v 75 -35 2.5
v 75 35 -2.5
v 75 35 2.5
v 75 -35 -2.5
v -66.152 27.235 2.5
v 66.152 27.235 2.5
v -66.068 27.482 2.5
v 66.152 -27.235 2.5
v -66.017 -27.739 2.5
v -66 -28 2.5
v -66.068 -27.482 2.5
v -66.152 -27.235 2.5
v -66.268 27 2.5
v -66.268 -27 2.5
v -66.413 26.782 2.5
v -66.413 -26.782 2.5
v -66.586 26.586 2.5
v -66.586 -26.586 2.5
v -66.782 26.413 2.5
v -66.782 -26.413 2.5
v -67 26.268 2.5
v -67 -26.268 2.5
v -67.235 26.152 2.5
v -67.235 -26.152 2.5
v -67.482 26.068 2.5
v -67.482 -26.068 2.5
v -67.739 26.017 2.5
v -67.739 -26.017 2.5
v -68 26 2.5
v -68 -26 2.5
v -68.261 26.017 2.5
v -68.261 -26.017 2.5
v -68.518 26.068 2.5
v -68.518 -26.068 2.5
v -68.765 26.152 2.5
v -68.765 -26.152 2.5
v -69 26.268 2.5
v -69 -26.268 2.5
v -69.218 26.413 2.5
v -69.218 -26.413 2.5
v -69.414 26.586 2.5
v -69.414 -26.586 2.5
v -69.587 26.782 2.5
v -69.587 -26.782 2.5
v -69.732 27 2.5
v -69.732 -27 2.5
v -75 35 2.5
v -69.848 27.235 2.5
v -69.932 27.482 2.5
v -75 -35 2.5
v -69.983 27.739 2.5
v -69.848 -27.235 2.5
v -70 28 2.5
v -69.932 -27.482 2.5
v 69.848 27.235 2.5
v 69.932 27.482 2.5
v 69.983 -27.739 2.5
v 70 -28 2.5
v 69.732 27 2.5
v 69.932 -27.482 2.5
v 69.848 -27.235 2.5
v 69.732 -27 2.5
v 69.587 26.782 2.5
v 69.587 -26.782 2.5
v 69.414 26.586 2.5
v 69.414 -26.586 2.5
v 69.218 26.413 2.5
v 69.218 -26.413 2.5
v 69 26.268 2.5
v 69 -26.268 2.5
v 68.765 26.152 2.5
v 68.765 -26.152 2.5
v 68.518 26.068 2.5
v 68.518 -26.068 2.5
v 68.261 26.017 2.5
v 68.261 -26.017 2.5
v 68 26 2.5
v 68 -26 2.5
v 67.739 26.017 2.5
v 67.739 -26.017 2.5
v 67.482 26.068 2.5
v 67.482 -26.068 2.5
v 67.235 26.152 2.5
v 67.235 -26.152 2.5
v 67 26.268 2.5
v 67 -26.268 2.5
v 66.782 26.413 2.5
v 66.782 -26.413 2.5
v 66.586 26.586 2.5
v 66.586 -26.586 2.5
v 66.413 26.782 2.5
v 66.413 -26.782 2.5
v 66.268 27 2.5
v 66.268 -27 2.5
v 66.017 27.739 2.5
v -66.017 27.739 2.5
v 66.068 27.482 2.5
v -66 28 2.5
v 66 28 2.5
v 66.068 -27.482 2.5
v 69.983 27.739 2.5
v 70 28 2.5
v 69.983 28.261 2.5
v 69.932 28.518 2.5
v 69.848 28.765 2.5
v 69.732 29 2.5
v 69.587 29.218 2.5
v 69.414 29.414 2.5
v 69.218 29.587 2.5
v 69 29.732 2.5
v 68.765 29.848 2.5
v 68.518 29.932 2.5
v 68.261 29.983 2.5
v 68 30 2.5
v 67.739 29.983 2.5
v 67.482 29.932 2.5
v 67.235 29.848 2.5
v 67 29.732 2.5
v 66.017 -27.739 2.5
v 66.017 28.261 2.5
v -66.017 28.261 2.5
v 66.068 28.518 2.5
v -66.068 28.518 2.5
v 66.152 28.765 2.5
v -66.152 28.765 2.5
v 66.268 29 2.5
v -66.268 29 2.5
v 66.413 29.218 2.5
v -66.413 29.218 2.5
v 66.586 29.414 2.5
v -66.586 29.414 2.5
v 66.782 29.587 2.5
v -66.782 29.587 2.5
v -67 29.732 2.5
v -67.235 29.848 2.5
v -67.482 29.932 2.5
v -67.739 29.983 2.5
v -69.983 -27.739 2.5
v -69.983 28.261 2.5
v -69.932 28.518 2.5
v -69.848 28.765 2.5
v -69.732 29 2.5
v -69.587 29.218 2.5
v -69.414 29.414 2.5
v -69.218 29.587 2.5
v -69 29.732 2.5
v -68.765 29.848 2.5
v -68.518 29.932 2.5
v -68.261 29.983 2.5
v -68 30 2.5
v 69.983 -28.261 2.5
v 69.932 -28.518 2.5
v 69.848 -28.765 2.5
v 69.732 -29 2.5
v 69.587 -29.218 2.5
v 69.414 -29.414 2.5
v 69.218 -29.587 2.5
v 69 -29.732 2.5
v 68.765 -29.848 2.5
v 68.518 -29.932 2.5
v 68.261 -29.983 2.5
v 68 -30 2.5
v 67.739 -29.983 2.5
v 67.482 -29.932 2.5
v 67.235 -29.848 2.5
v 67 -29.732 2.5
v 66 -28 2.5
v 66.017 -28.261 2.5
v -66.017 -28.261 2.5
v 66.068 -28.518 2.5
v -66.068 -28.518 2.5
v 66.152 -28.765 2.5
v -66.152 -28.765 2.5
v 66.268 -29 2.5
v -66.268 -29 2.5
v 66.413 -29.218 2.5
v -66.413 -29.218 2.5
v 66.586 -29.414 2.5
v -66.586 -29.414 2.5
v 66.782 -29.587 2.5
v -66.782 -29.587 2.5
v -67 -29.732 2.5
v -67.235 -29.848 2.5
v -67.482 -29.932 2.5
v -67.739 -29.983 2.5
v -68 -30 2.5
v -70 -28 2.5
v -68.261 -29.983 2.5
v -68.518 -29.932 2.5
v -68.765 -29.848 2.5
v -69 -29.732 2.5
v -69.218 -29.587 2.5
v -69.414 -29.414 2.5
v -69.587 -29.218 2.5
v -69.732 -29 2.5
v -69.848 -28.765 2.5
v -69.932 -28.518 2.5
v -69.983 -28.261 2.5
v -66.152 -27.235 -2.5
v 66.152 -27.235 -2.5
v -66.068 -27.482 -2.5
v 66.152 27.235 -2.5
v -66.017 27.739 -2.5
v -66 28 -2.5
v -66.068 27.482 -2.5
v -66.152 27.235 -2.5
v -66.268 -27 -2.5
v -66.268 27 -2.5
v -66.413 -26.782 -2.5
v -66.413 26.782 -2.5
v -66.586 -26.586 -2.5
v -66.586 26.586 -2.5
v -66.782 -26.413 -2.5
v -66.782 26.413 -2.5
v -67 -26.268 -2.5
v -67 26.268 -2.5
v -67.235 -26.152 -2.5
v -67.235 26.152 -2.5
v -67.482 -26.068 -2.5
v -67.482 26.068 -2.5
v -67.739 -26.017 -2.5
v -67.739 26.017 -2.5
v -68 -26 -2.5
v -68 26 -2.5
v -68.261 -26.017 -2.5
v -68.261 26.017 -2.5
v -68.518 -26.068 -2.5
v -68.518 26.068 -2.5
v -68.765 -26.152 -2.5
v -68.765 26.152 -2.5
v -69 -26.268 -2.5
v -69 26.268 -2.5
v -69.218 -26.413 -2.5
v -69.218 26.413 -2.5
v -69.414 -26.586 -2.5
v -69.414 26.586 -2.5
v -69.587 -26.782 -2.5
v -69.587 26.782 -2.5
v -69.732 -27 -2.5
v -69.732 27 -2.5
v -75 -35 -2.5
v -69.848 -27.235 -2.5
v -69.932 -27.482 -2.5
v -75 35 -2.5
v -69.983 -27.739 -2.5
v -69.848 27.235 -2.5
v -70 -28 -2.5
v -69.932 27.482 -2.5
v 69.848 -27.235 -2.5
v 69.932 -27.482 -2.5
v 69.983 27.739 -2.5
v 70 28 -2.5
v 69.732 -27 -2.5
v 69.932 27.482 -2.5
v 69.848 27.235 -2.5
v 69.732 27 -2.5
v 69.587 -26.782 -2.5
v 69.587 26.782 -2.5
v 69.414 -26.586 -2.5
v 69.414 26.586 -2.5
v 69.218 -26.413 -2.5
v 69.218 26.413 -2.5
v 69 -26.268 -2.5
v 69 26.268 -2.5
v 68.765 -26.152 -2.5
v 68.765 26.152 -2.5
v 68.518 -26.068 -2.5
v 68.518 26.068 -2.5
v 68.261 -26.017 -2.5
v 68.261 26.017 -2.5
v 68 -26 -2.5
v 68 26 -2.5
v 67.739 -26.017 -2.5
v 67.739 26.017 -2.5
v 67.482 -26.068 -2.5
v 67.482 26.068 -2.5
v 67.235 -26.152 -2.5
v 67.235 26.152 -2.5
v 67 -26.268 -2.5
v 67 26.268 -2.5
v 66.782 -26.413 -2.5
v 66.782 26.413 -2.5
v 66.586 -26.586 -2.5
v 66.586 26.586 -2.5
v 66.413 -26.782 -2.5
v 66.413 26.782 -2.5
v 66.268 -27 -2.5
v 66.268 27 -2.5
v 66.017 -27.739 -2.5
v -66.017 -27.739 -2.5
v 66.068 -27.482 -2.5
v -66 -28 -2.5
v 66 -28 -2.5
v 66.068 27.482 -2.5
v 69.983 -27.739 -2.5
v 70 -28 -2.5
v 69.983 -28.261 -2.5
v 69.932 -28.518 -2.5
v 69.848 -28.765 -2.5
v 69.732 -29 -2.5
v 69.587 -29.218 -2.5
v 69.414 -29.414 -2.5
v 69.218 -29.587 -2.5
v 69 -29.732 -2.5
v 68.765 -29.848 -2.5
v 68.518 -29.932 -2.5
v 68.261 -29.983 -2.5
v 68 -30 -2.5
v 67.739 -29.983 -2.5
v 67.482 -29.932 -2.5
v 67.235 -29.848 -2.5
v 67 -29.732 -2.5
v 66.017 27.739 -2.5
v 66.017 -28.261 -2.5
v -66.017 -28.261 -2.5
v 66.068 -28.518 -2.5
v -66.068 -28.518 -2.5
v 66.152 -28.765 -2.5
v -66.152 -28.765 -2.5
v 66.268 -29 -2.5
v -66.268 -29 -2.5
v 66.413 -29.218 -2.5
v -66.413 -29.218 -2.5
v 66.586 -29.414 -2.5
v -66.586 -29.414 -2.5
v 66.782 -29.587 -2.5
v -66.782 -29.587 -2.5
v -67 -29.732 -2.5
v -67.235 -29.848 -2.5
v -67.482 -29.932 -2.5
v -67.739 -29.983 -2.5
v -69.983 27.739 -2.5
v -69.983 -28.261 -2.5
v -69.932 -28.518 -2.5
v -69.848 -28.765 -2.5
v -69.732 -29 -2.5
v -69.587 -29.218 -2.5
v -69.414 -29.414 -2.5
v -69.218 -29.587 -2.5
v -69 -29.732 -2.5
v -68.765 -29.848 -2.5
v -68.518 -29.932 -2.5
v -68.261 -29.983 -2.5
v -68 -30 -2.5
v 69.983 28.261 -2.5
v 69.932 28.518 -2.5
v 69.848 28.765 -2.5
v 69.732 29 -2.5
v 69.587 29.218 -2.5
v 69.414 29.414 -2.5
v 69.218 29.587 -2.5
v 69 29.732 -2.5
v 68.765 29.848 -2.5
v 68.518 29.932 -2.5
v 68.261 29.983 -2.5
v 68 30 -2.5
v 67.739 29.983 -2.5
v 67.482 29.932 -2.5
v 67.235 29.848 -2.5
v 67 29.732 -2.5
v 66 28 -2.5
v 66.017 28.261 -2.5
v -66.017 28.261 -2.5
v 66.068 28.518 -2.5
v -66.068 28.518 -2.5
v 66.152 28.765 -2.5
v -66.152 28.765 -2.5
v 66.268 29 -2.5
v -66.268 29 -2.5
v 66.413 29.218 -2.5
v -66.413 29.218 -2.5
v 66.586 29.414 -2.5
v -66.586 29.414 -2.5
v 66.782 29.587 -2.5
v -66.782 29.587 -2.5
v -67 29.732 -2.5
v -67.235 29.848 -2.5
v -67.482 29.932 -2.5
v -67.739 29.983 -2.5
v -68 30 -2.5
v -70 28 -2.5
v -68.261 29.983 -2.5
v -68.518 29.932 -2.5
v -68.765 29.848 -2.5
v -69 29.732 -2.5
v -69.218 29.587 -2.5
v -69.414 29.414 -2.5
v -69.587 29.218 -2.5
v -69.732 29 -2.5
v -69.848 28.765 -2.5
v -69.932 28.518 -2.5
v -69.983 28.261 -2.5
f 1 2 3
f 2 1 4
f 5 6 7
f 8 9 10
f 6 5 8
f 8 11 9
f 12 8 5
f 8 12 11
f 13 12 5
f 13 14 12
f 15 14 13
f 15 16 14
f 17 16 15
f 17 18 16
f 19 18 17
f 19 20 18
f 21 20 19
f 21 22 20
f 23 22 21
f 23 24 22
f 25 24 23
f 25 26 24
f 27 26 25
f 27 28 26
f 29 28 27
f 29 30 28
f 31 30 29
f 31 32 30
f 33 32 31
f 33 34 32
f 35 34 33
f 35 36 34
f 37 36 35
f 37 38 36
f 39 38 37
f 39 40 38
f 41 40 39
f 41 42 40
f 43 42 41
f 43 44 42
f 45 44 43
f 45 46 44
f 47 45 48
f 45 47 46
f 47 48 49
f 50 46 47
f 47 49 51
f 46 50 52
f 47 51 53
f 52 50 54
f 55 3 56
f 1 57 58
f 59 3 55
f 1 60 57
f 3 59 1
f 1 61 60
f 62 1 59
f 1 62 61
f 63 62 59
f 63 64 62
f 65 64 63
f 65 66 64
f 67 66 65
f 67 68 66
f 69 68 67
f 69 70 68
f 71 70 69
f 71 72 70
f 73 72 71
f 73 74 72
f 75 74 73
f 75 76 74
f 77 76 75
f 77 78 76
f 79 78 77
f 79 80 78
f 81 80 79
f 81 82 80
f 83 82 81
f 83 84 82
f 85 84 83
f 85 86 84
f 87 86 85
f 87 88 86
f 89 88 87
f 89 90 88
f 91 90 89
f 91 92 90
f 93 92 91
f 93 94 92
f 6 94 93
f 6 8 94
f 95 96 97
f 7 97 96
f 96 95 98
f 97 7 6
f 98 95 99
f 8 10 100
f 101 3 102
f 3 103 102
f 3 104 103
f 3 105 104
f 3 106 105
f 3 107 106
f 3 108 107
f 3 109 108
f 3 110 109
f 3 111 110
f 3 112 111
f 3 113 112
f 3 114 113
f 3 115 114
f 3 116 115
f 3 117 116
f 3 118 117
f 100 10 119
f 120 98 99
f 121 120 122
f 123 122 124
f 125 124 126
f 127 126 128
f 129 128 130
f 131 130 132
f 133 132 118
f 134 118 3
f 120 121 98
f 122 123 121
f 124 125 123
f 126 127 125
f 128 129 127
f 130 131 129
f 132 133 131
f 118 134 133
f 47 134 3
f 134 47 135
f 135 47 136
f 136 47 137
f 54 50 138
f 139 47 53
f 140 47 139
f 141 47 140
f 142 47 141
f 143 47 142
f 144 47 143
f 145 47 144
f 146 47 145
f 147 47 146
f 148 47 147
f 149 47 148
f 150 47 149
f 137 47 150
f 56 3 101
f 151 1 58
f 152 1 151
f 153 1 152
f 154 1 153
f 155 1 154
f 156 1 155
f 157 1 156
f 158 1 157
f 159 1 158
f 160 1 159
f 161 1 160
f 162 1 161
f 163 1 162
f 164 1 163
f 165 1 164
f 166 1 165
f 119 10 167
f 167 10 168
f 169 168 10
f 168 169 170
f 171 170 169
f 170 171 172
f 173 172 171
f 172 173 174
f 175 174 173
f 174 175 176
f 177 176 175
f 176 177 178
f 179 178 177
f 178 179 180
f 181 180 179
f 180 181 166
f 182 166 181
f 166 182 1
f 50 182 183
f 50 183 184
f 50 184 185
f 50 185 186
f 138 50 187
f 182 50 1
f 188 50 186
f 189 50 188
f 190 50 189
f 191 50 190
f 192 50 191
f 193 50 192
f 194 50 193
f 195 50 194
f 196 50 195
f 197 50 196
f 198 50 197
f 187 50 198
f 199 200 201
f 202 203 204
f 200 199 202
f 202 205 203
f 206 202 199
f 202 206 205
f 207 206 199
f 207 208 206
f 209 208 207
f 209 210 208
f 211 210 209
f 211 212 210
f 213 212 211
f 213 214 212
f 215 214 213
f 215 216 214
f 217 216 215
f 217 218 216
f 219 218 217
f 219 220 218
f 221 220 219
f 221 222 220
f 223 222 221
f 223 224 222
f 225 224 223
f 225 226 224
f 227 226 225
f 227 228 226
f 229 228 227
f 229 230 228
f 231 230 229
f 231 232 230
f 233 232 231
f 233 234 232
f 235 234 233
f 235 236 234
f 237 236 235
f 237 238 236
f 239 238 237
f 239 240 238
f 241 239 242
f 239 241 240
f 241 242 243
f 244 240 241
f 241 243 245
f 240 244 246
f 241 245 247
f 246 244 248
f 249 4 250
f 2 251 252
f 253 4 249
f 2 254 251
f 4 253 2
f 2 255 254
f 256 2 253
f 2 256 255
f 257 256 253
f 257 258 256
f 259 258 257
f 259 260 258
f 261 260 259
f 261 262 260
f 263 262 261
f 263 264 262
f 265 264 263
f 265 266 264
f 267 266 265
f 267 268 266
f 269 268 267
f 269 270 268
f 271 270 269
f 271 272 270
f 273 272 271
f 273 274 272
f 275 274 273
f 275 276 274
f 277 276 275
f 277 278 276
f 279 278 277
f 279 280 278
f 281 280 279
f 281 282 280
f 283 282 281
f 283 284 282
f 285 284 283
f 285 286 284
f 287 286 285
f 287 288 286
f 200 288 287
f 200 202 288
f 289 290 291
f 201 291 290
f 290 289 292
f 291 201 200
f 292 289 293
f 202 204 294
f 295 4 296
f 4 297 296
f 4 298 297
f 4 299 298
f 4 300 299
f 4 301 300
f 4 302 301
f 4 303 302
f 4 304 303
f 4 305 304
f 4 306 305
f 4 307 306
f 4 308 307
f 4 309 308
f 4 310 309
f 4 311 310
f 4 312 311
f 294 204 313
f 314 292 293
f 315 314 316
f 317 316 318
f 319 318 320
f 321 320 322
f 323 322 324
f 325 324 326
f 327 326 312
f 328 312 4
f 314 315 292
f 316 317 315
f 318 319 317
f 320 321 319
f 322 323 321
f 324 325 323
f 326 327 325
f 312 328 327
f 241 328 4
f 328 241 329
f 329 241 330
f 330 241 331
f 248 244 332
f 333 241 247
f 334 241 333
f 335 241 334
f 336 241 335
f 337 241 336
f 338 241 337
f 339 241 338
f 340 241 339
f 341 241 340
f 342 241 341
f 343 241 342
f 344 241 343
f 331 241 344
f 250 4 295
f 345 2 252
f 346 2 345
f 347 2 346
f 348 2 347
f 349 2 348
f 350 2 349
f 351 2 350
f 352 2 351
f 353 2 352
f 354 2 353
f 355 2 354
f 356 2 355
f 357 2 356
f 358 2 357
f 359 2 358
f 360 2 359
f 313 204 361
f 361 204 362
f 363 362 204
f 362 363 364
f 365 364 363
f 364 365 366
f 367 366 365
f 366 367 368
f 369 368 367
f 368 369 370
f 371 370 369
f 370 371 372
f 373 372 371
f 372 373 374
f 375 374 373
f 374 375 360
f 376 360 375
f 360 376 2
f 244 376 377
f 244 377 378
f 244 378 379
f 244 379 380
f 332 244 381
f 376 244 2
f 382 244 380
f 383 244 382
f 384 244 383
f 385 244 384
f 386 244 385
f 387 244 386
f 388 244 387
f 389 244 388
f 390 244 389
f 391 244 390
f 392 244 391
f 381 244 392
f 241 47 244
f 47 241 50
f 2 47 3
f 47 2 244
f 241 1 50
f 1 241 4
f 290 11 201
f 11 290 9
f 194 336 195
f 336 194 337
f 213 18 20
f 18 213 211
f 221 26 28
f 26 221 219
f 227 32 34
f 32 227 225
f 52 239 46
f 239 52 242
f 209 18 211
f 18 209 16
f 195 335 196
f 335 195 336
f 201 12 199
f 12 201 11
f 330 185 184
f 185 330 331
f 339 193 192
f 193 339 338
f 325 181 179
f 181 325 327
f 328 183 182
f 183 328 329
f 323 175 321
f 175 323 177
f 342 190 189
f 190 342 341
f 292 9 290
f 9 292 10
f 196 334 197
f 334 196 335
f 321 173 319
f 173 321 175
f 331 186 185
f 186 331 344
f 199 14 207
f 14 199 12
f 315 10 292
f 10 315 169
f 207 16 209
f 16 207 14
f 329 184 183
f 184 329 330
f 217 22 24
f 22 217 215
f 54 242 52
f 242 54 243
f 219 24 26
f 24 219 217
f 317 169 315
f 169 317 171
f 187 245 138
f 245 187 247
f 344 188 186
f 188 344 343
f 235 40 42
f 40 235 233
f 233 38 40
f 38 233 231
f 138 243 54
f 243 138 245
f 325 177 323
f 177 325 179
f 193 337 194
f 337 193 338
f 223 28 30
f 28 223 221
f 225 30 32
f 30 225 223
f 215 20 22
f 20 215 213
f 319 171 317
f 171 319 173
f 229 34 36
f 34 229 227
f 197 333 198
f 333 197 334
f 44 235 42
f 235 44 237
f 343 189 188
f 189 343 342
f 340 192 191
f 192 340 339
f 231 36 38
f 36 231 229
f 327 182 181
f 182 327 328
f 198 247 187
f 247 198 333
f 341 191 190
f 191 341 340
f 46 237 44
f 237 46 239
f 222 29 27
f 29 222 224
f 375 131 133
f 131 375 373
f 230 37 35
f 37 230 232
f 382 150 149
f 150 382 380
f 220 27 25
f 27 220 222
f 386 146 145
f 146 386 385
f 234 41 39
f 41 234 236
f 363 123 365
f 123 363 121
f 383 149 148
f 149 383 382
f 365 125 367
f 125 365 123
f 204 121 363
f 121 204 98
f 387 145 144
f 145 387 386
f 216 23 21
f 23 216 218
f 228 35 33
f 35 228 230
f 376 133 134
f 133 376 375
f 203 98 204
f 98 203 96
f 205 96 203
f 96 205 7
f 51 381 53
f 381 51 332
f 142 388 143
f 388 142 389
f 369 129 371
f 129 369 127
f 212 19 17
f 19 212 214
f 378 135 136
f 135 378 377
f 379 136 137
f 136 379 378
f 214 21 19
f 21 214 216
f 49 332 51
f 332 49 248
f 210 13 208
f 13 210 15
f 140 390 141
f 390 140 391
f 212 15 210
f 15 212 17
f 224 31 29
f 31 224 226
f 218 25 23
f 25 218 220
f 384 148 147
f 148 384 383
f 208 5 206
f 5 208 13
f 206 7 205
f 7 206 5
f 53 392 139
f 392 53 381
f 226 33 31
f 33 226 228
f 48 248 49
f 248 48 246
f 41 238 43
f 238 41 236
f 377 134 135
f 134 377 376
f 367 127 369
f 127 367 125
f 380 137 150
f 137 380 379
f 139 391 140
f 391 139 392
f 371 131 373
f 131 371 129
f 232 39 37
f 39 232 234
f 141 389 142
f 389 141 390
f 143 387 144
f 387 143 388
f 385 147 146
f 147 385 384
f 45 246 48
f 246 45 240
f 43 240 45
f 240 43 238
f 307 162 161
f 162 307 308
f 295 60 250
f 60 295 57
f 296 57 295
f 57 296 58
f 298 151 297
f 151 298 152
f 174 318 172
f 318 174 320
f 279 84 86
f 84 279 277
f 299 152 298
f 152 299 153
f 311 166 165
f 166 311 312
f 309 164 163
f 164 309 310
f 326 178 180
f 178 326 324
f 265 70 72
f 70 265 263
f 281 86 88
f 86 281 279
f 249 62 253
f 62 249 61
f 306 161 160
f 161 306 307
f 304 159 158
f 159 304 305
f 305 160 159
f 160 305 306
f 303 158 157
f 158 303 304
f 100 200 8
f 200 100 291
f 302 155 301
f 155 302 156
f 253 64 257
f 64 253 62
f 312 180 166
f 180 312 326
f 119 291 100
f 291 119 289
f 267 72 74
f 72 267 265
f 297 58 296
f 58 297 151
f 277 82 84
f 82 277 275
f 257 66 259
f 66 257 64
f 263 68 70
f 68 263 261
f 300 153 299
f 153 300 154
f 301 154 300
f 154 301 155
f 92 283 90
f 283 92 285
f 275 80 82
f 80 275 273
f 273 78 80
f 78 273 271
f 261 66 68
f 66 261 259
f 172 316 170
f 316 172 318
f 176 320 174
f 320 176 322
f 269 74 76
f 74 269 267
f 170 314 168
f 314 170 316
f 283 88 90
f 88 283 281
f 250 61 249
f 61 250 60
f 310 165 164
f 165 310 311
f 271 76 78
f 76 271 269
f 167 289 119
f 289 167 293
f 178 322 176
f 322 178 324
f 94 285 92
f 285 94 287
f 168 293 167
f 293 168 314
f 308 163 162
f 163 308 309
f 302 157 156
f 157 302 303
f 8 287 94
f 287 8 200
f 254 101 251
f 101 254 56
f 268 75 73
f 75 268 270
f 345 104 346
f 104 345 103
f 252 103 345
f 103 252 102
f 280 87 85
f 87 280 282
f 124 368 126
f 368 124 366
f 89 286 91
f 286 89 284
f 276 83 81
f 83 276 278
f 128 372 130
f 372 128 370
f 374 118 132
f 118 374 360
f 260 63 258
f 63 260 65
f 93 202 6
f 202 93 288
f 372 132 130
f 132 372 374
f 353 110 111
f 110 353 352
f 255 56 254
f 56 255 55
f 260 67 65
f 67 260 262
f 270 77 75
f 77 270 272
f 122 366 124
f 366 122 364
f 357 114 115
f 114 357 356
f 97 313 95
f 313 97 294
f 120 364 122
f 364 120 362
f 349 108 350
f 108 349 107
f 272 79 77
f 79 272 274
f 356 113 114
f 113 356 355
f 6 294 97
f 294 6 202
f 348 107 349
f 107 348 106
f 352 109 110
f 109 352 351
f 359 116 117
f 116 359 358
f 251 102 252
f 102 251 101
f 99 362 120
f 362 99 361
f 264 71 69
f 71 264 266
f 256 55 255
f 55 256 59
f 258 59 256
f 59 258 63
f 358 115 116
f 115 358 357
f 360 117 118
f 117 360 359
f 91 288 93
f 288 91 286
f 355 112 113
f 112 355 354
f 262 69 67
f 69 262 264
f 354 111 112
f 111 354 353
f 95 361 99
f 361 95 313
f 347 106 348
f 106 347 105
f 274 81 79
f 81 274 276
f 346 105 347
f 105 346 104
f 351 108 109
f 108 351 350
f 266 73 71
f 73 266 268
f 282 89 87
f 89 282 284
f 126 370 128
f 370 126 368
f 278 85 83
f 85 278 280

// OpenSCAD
// ========================================
// a 15 x 7 x 0.5 cm plate with four 0.4 cm holes
// NeuroCAD canonical IR; dimensions are millimetres
// ========================================
$fn = 48;

difference() {
  cube(size=[150, 70, 5], center=true);
  translate([-68, -28, 0]) {
    cylinder(r=2, h=7, center=true);
  }
  translate([-68, 28, 0]) {
    cylinder(r=2, h=7, center=true);
  }
  translate([68, -28, 0]) {
    cylinder(r=2, h=7, center=true);
  }
  translate([68, 28, 0]) {
    cylinder(r=2, h=7, center=true);
  }
}
